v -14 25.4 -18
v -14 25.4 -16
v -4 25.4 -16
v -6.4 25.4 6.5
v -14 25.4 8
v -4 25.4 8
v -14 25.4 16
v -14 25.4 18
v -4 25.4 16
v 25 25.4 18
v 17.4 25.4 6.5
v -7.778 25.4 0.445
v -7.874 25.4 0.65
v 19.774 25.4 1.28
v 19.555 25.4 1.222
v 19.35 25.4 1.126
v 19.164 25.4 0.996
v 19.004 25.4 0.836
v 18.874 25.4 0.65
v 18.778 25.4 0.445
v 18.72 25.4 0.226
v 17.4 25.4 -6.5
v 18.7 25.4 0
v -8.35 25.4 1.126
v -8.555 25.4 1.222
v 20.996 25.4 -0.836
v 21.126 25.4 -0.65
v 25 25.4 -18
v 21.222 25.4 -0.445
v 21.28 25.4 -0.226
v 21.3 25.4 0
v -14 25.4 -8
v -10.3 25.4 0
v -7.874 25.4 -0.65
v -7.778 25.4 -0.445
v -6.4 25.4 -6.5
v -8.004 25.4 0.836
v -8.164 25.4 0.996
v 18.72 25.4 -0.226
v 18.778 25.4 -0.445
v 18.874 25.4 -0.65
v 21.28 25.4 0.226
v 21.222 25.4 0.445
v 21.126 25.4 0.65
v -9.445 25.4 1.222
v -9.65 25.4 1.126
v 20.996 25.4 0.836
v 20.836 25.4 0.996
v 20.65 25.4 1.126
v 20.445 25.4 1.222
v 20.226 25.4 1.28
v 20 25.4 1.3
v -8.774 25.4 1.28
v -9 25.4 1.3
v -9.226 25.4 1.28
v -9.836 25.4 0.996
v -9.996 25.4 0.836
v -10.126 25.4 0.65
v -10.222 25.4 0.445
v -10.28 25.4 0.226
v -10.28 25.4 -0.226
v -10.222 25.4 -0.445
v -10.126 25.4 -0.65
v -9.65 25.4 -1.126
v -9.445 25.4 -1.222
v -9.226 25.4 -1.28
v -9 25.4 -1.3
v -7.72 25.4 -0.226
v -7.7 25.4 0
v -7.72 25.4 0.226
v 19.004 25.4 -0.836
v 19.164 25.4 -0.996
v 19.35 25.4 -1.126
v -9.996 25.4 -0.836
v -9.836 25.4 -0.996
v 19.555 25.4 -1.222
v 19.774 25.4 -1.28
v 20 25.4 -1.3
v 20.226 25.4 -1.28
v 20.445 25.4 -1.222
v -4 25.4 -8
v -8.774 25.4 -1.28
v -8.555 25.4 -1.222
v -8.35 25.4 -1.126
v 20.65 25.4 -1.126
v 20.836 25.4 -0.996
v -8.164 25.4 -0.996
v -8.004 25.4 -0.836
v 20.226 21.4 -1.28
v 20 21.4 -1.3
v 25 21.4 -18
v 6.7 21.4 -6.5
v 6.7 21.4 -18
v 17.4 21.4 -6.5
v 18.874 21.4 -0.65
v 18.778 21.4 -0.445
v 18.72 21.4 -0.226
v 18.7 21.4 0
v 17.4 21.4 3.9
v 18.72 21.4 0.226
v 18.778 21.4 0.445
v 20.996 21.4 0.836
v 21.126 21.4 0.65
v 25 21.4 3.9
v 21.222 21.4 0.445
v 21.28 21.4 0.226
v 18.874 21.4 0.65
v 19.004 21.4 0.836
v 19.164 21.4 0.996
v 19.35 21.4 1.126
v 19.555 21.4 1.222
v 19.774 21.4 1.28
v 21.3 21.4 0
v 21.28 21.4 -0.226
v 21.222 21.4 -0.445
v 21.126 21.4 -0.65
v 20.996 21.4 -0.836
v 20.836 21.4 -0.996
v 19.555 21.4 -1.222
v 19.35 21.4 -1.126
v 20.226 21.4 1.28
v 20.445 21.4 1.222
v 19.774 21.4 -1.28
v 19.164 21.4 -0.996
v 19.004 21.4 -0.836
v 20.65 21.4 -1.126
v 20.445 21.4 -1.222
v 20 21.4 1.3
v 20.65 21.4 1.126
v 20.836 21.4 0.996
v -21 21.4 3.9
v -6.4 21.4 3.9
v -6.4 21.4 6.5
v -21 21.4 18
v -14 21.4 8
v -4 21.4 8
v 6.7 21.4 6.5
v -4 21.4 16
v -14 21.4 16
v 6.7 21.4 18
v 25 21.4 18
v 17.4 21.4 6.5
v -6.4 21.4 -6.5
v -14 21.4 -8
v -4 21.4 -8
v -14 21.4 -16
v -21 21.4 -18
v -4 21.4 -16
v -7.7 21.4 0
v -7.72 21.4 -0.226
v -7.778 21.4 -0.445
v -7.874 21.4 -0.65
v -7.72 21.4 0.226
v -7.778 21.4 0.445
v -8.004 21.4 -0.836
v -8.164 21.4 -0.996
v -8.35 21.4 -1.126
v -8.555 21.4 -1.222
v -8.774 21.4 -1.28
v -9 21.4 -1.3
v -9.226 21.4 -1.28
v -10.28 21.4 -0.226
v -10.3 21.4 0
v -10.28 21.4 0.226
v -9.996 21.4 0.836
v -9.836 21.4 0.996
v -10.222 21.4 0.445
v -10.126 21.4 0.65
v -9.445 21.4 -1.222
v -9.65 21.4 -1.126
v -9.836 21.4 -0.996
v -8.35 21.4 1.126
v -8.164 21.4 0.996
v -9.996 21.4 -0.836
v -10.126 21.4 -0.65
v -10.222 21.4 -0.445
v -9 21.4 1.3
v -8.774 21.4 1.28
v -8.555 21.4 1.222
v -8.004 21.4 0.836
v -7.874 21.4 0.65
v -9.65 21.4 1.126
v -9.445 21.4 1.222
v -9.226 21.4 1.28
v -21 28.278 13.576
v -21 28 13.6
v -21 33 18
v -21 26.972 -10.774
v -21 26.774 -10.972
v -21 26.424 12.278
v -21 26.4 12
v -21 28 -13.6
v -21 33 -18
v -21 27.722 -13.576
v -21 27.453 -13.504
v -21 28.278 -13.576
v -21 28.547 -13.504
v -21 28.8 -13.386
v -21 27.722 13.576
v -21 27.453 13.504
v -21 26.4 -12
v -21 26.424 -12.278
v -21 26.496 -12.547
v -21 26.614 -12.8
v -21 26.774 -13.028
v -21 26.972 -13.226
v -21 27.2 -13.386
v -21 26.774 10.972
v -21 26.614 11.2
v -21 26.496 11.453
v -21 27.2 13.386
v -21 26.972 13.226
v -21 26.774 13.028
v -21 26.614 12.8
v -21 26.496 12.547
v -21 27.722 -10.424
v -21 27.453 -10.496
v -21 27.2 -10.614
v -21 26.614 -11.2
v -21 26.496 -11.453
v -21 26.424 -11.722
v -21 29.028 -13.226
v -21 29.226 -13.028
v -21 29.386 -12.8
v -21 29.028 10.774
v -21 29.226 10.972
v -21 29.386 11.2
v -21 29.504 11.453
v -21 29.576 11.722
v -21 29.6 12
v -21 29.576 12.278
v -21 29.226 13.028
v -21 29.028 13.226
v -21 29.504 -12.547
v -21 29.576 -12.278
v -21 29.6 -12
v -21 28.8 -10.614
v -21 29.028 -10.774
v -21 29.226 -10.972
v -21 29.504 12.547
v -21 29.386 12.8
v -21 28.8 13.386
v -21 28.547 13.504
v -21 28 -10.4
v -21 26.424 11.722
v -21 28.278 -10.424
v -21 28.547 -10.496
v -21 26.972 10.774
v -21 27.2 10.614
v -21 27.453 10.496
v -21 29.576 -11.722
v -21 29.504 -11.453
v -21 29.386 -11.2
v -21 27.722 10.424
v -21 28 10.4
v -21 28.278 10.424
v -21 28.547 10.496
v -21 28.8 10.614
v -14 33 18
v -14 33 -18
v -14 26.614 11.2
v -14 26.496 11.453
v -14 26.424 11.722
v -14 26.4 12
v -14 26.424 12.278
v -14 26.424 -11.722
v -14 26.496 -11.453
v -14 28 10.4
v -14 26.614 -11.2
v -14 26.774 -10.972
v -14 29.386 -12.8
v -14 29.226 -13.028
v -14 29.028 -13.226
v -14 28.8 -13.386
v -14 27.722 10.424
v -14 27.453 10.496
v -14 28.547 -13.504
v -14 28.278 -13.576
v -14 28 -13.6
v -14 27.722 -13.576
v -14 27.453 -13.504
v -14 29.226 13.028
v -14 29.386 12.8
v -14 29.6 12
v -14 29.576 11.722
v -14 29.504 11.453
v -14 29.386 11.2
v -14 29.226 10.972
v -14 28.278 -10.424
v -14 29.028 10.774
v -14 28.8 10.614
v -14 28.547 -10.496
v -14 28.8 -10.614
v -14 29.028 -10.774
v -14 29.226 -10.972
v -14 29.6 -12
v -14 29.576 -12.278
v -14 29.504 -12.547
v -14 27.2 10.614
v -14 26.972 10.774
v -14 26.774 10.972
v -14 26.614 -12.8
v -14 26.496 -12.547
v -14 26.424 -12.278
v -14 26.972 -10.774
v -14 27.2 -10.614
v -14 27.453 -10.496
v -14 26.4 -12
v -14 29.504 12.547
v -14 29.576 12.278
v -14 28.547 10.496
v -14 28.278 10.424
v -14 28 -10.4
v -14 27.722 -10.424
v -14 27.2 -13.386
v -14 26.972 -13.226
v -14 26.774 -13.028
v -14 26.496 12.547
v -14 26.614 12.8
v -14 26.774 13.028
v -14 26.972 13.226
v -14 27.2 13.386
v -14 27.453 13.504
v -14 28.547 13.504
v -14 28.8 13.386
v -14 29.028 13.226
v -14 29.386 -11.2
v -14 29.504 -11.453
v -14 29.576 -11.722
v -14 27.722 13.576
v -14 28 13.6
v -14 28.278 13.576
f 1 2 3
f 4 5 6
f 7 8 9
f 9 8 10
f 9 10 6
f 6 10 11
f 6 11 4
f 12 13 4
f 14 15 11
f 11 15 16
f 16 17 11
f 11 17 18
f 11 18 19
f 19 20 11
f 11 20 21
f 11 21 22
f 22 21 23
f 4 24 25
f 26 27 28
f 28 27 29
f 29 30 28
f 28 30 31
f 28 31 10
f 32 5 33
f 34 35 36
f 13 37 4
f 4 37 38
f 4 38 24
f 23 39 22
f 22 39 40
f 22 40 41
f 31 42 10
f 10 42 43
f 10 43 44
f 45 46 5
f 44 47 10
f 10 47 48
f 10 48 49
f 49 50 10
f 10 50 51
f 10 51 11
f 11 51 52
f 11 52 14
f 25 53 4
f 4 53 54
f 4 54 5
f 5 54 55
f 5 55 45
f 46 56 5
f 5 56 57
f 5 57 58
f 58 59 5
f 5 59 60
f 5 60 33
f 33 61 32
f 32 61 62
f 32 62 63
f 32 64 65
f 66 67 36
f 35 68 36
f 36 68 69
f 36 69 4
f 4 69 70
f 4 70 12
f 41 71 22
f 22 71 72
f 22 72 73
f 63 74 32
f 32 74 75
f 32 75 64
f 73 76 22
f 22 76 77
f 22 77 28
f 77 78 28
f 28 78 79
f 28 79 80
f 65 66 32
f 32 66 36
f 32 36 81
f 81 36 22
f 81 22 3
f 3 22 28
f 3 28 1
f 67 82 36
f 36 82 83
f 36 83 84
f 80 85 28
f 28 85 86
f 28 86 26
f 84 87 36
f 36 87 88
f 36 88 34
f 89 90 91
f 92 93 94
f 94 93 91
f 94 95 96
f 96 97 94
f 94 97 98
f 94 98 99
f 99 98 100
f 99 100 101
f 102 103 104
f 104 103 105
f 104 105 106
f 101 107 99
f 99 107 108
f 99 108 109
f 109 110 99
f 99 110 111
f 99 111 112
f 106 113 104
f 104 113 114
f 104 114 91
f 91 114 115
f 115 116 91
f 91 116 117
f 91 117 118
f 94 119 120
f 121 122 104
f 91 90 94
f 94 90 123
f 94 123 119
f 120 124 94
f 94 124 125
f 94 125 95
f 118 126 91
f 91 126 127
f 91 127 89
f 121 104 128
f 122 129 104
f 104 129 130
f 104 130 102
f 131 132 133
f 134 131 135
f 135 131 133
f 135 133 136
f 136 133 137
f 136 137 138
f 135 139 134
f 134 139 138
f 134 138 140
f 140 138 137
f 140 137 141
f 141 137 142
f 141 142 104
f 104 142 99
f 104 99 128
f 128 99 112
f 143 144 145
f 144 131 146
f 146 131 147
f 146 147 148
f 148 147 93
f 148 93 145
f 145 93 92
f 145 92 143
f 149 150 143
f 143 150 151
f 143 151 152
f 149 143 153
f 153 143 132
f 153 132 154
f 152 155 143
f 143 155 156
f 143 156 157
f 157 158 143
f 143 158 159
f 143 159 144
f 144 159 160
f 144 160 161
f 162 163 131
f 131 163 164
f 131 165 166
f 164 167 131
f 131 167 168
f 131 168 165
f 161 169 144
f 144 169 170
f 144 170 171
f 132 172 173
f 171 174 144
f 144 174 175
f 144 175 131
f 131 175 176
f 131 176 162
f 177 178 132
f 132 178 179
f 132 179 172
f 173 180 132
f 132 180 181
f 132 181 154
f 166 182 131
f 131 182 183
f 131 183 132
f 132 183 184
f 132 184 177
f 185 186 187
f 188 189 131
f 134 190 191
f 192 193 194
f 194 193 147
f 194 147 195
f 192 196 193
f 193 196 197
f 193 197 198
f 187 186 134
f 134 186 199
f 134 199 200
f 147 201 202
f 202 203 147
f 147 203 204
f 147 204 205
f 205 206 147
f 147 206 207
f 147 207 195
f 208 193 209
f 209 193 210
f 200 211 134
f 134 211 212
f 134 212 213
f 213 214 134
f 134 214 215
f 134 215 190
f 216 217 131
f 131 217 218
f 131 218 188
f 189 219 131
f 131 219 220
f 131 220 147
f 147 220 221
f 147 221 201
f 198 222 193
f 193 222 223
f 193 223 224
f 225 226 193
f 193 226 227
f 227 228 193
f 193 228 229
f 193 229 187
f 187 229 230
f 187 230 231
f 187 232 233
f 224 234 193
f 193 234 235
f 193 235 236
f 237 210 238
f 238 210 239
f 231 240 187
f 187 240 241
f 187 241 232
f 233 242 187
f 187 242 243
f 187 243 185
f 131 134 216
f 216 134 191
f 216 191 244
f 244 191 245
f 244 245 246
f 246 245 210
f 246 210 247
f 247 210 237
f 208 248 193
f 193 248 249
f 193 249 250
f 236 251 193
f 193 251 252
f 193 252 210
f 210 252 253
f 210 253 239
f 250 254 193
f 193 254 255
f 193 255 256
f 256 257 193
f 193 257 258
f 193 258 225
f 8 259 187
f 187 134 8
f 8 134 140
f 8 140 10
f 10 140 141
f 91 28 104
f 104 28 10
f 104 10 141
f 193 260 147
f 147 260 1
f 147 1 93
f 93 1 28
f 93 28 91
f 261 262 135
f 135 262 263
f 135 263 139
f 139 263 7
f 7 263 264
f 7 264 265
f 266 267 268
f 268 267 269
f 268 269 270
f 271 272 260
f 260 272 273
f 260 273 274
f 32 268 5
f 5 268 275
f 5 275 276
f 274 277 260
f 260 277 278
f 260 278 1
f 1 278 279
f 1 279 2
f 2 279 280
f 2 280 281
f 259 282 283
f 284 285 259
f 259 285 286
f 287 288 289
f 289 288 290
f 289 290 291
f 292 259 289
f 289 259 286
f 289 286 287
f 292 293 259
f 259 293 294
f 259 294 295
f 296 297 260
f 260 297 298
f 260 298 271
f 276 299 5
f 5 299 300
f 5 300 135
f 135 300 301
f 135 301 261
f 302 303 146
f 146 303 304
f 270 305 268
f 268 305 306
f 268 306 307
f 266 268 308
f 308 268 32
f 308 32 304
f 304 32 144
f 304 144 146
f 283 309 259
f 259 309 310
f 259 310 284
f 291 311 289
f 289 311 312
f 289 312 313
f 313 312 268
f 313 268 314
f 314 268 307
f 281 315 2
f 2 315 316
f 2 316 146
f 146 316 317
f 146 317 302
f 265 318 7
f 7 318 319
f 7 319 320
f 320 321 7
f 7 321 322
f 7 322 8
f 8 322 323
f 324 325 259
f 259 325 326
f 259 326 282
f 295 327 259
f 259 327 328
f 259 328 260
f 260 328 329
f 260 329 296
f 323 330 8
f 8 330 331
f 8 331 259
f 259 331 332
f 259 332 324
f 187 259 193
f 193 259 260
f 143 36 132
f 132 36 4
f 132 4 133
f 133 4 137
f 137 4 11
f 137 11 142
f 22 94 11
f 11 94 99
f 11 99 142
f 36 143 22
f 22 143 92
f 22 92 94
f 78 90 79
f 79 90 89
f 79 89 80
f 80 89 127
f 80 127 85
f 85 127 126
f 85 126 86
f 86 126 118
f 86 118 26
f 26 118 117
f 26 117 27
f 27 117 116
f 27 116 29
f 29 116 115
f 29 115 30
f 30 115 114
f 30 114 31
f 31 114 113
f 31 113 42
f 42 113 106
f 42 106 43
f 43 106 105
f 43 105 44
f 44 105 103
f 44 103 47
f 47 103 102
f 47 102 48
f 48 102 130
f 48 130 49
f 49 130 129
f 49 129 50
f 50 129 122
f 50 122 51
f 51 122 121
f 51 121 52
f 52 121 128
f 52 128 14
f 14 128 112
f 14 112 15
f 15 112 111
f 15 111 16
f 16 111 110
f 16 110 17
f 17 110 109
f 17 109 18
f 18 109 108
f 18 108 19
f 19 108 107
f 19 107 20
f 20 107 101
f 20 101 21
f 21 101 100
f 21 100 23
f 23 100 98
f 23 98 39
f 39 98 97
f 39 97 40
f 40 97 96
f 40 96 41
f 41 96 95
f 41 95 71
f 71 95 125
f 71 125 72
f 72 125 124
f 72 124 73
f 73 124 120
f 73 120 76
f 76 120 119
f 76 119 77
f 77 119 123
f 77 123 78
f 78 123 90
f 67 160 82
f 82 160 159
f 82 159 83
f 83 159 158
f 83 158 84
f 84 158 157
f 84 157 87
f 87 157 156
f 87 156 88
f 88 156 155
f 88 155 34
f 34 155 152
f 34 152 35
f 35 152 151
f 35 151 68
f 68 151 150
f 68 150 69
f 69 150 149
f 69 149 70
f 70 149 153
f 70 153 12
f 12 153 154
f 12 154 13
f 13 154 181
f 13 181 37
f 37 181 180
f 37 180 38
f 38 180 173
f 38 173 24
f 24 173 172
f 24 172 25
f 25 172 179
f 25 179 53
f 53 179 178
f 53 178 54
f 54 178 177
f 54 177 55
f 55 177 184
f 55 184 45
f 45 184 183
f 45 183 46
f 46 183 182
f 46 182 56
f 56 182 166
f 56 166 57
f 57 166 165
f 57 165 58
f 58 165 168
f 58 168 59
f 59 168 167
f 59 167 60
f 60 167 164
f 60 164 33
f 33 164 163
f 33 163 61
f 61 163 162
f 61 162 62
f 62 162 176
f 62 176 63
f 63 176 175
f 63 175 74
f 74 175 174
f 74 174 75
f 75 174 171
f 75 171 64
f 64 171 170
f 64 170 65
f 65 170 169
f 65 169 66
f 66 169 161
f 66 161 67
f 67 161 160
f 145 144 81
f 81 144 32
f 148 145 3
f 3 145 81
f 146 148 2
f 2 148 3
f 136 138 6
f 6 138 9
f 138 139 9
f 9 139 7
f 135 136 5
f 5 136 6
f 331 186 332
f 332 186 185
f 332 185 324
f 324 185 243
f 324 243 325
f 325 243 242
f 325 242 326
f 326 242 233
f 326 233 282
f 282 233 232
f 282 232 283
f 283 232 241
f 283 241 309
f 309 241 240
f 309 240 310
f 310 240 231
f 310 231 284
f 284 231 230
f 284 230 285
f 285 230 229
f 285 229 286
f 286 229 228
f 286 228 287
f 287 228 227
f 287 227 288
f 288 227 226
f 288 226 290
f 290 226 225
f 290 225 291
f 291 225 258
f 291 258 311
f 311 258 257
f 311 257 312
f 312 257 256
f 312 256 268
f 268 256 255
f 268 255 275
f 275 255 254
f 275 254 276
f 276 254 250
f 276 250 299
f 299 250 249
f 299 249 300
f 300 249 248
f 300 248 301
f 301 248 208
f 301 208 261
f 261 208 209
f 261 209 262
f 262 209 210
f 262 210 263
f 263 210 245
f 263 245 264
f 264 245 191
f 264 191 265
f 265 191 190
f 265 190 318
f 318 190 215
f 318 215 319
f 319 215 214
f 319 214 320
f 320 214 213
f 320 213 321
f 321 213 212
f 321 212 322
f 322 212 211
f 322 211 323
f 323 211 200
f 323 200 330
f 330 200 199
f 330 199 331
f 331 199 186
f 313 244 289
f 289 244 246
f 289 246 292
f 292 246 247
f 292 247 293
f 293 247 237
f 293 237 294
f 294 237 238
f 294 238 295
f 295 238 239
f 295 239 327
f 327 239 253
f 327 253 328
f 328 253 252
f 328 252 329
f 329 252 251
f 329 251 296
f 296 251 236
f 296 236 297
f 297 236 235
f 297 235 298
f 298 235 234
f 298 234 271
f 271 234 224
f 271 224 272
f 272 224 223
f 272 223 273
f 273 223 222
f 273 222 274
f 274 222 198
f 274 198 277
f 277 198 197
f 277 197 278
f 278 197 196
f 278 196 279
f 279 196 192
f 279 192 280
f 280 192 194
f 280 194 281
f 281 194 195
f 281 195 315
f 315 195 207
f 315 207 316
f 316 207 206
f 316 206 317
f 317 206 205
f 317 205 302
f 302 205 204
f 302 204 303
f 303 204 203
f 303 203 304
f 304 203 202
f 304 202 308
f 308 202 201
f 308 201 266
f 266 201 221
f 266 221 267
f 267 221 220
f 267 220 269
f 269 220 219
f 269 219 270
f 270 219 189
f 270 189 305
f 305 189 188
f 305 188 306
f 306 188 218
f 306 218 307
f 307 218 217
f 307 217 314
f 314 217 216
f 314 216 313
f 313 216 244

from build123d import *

# Parameters (mm, degrees)
SERVO_SHELF_START                = 21.4
SERVO_SHELF_PROFILE_W            = 46
SERVO_SHELF_PROFILE_H            = 36
SERVO_SHELF_DEPTH                = 4
REAR_CLAMPING_BLOCK_START        = -18
REAR_CLAMPING_BLOCK_PROFILE_W    = 7
REAR_CLAMPING_BLOCK_PROFILE_H    = 10
REAR_CLAMPING_BLOCK_DEPTH        = 36
SERVO_BODY_WINDOW_START          = 20.4
SERVO_BODY_WINDOW_PROFILE_W      = 23.8
SERVO_BODY_WINDOW_PROFILE_H      = 13
SERVO_BODY_WINDOW_DEPTH          = 25.744213361
YAW_SERVO_M2_FASTENERS_START     = 20.4
YAW_SERVO_M2_FASTENERS_PROFILE_R = 1.3
YAW_SERVO_M2_FASTENERS_DEPTH     = 25.744213361
LEFT_NUT_ACCESS_START            = 20
LEFT_NUT_ACCESS_PROFILE_W        = 10
LEFT_NUT_ACCESS_PROFILE_H        = 8
LEFT_NUT_ACCESS_DEPTH            = 26.144213361
RIGHT_NUT_ACCESS_START           = 20
RIGHT_NUT_ACCESS_PROFILE_W       = 10
RIGHT_NUT_ACCESS_PROFILE_H       = 8
RIGHT_NUT_ACCESS_DEPTH           = 26.144213361
REAR_CLAMPING_M3_HOLES_START     = -25
REAR_CLAMPING_M3_PROFILE_R       = 1.6
REAR_CLAMPING_M3_HOLES_DEPTH     = 11


with BuildPart() as part:
    # Servo_shelf_profile → Servo_shelf (new body)
    with BuildSketch(Plane(origin=(0, 0, 0), x_dir=(1, 0, 0), z_dir=(0, 1, 0)).offset(SERVO_SHELF_START)):
        with Locations((2, 0)):
            Rectangle(SERVO_SHELF_PROFILE_W, SERVO_SHELF_PROFILE_H)
    extrude(amount=SERVO_SHELF_DEPTH)

    # Rear_clamping_block_profile → Rear_clamping_block (add)
    with BuildSketch(Plane.XY.offset(REAR_CLAMPING_BLOCK_START)):
        with Locations((-17.5, 28)):
            Rectangle(REAR_CLAMPING_BLOCK_PROFILE_W, REAR_CLAMPING_BLOCK_PROFILE_H)
    extrude(amount=REAR_CLAMPING_BLOCK_DEPTH)

    # Servo_body_window_profile → Servo_body_window (cut, through all)
    with BuildSketch(Plane(origin=(0, 0, 0), x_dir=(1, 0, 0), z_dir=(0, 1, 0)).offset(SERVO_BODY_WINDOW_START)):
        with Locations((5.5, 0)):
            Rectangle(SERVO_BODY_WINDOW_PROFILE_W, SERVO_BODY_WINDOW_PROFILE_H)
    extrude(amount=SERVO_BODY_WINDOW_DEPTH, mode=Mode.SUBTRACT)

    # Yaw_servo_M2_fasteners_profile → Yaw_servo_M2_fasteners (cut, through all)
    with BuildSketch(Plane(origin=(0, 0, 0), x_dir=(1, 0, 0), z_dir=(0, 1, 0)).offset(YAW_SERVO_M2_FASTENERS_START)):
        with Locations(Location((-9, 0, 0), (0, 0, 90))):
            Circle(YAW_SERVO_M2_FASTENERS_PROFILE_R)
        with Locations(Location((20, 0, 0), (0, 0, 90))):
            Circle(YAW_SERVO_M2_FASTENERS_PROFILE_R)
    extrude(amount=YAW_SERVO_M2_FASTENERS_DEPTH, mode=Mode.SUBTRACT)

    # Left_nut_access_profile → Left_nut_access (cut, through all)
    with BuildSketch(Plane(origin=(0, 0, 0), x_dir=(1, 0, 0), z_dir=(0, 1, 0)).offset(LEFT_NUT_ACCESS_START)):
        with Locations((-9, 12)):
            Rectangle(LEFT_NUT_ACCESS_PROFILE_W, LEFT_NUT_ACCESS_PROFILE_H)
    extrude(amount=LEFT_NUT_ACCESS_DEPTH, mode=Mode.SUBTRACT)

    # Right_nut_access_profile → Right_nut_access (cut, through all)
    with BuildSketch(Plane(origin=(0, 0, 0), x_dir=(1, 0, 0), z_dir=(0, 1, 0)).offset(RIGHT_NUT_ACCESS_START)):
        with Locations((-9, -12)):
            Rectangle(RIGHT_NUT_ACCESS_PROFILE_W, RIGHT_NUT_ACCESS_PROFILE_H)
    extrude(amount=RIGHT_NUT_ACCESS_DEPTH, mode=Mode.SUBTRACT)

    # Rear_clamping_M3_profile → Rear_clamping_M3_holes (cut)
    with BuildSketch(Plane(origin=(0, 0, 0), x_dir=(0, 0, -1), z_dir=(1, 0, 0)).offset(REAR_CLAMPING_M3_HOLES_START)):
        with Locations((12, 28)):
            Circle(REAR_CLAMPING_M3_PROFILE_R)
        with Locations((-12, 28)):
            Circle(REAR_CLAMPING_M3_PROFILE_R)
    extrude(amount=REAR_CLAMPING_M3_HOLES_DEPTH, mode=Mode.SUBTRACT)


solid = part.part
